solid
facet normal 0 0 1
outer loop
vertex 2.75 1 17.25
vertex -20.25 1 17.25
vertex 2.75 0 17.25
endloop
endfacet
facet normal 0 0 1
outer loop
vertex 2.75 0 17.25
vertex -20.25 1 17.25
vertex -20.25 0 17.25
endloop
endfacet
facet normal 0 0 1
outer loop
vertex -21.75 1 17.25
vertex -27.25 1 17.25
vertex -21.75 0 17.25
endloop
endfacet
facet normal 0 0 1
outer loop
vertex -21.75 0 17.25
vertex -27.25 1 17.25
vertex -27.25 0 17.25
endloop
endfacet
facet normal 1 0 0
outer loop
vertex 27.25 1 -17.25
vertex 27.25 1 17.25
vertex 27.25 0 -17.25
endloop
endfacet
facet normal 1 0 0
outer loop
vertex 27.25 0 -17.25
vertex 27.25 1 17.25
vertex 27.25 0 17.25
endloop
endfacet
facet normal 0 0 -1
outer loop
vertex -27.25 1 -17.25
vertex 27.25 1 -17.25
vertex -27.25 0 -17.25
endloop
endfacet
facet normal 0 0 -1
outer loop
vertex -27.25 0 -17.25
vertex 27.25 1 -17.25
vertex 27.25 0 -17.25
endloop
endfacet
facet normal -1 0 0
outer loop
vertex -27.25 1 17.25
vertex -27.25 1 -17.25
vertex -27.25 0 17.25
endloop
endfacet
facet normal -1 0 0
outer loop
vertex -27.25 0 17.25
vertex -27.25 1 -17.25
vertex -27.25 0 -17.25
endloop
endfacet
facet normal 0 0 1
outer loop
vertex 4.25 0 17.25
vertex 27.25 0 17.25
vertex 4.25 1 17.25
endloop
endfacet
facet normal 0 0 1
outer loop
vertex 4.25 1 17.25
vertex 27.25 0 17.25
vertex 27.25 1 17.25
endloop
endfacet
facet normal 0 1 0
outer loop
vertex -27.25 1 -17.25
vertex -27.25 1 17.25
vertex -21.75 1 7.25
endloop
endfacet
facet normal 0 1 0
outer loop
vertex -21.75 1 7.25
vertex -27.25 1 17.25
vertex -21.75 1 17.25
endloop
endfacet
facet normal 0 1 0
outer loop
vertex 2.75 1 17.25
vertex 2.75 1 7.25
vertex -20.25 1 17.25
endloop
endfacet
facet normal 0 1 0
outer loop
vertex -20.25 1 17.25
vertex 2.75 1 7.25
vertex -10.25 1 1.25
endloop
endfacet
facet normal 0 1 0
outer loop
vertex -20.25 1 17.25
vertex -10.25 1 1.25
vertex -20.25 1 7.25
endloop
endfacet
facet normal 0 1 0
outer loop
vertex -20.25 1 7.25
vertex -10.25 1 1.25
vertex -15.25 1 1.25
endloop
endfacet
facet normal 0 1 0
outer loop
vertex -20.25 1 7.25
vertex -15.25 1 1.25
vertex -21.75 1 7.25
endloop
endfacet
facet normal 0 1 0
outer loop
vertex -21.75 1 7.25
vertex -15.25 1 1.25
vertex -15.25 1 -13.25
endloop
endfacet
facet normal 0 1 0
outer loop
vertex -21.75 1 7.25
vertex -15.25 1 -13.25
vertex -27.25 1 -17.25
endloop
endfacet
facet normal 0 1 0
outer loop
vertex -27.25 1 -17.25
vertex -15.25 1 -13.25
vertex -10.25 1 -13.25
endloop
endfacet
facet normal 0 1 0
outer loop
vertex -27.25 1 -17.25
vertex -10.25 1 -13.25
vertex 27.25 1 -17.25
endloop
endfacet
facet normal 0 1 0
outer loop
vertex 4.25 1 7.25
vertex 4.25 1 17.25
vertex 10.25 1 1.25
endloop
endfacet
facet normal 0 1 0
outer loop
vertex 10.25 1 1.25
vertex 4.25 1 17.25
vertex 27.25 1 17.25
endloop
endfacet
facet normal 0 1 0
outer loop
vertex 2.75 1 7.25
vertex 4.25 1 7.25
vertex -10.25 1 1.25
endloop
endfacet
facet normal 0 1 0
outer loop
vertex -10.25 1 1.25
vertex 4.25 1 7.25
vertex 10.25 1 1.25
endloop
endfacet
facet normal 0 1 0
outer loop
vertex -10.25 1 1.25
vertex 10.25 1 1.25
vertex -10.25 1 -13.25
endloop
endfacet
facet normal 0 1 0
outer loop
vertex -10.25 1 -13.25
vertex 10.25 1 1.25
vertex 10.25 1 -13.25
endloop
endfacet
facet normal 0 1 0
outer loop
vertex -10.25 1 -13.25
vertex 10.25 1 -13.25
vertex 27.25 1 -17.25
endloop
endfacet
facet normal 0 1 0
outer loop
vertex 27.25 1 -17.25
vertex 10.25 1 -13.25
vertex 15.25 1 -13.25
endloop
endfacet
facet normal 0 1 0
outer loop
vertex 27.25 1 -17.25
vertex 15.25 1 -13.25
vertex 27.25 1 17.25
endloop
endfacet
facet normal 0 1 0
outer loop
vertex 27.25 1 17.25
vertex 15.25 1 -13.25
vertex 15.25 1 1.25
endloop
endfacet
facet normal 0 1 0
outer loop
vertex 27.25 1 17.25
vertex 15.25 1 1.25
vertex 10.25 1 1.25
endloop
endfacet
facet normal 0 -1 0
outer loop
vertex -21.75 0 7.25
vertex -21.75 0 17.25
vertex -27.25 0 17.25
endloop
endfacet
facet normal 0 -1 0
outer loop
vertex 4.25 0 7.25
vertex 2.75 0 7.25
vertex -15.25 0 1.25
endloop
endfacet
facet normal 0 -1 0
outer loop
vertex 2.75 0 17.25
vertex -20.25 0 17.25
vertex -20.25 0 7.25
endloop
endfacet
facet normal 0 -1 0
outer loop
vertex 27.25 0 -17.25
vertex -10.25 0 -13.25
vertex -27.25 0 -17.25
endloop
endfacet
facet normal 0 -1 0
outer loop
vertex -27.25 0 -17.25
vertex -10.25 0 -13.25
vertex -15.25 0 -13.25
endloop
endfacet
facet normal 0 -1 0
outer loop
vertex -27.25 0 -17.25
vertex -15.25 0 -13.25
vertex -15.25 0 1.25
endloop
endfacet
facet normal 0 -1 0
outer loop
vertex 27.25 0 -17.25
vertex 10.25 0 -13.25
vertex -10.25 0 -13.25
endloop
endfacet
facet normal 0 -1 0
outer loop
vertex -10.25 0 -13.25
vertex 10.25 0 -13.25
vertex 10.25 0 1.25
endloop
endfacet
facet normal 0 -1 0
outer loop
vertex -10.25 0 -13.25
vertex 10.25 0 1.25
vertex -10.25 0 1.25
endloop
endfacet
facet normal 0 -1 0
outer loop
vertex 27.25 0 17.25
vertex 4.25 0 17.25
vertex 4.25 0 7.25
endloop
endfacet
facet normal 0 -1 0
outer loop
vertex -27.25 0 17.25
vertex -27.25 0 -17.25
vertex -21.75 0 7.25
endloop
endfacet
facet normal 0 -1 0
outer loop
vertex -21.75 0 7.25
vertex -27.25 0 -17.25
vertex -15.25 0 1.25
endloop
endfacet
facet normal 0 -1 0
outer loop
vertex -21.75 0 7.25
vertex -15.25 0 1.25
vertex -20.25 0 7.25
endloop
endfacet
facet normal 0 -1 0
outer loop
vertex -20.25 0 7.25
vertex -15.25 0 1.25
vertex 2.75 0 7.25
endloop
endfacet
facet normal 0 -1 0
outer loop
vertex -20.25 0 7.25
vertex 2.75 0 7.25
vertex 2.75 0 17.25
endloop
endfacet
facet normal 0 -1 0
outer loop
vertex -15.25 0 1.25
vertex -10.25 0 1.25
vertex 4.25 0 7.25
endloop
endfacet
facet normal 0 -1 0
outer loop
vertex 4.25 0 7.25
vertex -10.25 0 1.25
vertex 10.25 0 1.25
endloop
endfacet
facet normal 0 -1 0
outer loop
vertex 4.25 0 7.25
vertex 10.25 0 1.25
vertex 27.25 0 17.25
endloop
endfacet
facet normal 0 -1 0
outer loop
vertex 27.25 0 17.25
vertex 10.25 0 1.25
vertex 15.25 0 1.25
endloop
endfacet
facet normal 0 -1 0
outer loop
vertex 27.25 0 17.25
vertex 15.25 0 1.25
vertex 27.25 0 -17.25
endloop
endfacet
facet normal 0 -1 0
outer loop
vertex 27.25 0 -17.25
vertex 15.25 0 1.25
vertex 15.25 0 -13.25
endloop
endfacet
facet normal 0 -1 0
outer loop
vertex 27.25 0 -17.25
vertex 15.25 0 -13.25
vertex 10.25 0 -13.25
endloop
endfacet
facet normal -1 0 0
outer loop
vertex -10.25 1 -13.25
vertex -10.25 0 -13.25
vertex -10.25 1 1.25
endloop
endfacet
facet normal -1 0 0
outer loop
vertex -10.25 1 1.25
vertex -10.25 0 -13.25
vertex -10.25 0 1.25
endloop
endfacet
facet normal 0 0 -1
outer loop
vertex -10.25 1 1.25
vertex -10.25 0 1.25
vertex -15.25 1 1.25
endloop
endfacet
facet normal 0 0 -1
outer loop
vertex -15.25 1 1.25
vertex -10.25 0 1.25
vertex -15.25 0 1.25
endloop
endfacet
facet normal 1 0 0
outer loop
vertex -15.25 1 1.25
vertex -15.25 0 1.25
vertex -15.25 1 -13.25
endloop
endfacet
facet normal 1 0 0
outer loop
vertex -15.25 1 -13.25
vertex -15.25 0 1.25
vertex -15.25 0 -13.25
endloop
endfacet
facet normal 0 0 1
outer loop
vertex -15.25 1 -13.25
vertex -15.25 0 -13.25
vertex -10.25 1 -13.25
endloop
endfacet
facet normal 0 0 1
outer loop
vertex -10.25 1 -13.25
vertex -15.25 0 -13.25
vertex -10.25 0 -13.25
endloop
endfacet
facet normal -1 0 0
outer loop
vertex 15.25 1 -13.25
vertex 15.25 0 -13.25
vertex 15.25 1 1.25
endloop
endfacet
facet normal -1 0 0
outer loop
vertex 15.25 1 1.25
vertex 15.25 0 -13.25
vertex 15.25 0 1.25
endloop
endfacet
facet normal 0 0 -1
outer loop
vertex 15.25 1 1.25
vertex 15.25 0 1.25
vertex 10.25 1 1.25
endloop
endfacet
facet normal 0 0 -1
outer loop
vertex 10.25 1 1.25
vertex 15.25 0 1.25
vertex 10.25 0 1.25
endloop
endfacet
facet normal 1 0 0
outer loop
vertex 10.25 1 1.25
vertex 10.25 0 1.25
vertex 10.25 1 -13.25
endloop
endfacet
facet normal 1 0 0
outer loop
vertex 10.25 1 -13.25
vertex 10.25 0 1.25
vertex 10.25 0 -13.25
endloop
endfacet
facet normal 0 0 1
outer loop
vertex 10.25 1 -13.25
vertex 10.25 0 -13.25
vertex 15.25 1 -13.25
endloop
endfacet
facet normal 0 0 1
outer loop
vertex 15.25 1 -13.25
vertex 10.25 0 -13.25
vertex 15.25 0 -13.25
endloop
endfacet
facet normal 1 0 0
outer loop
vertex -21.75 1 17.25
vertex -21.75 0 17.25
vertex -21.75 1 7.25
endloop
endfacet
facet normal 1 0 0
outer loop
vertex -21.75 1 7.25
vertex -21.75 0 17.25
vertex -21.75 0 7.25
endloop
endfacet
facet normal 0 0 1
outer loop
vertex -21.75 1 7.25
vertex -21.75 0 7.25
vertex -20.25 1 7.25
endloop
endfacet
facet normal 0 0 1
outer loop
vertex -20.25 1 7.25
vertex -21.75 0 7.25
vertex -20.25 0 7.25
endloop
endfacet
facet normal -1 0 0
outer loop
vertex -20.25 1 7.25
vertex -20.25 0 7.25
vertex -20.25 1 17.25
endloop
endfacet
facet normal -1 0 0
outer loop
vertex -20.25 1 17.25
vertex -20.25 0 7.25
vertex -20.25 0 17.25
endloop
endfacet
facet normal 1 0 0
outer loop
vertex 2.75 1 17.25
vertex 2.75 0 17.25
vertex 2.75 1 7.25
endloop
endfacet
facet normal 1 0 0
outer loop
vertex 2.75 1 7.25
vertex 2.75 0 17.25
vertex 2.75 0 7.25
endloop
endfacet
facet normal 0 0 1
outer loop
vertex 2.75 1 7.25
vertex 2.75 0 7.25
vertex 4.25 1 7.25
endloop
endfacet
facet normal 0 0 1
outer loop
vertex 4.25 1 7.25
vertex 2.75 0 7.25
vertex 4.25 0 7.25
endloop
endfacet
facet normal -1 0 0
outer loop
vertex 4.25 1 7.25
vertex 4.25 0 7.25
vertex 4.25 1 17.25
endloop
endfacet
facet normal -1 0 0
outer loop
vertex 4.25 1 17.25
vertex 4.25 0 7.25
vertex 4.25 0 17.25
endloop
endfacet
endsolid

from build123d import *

# Parameters (mm, degrees)
SKETCH1_W           = 54.5
SKETCH1_H           = 34.5
BOSS_EXTRUDE1_DEPTH = 1
SKETCH6_W           = 5
SKETCH6_H           = 14.5
CUT_EXTRUDE1_DEPTH  = 2
SKETCH9_W           = 5
SKETCH9_H           = 14.5
CUT_EXTRUDE2_DEPTH  = 2
SKETCH27_W          = 1.5
SKETCH27_H          = 10
CUT_EXTRUDE3_DEPTH  = 2
SKETCH37_W          = 1.5
SKETCH37_H          = 10
CUT_EXTRUDE10_DEPTH = 2


with BuildPart() as part:
    # Sketch1 → Boss-Extrude1 (new body)
    with BuildSketch(Plane(origin=(0, 0, 0), x_dir=(1, 0, 0), z_dir=(0, 1, 0))):
        Rectangle(SKETCH1_W, SKETCH1_H)
    extrude(amount=BOSS_EXTRUDE1_DEPTH)

    # Sketch6 → Cut-Extrude1 (cut)
    with BuildSketch(Plane(origin=(0, 1, 0), x_dir=(1, 0, 0), z_dir=(0, 1, 0))):
        with Locations((-12.75, 6)):
            Rectangle(SKETCH6_W, SKETCH6_H)
    extrude(amount=-CUT_EXTRUDE1_DEPTH, mode=Mode.SUBTRACT)

    # Sketch9 → Cut-Extrude2 (cut)
    with BuildSketch(Plane(origin=(0, 1, 0), x_dir=(1, 0, 0), z_dir=(0, 1, 0))):
        with Locations((12.75, 6)):
            Rectangle(SKETCH9_W, SKETCH9_H)
    extrude(amount=-CUT_EXTRUDE2_DEPTH, mode=Mode.SUBTRACT)

    # Sketch27 → Cut-Extrude3 (cut)
    with BuildSketch(Plane(origin=(0, 1, 0), x_dir=(1, 0, 0), z_dir=(0, 1, 0))):
        with Locations((-21, -12.25)):
            Rectangle(SKETCH27_W, SKETCH27_H)
    extrude(amount=-CUT_EXTRUDE3_DEPTH, mode=Mode.SUBTRACT)

    # Sketch37 → Cut-Extrude10 (cut)
    with BuildSketch(Plane(origin=(0, 1, 0), x_dir=(1, 0, 0), z_dir=(0, 1, 0))):
        with Locations((3.5, -12.25)):
            Rectangle(SKETCH37_W, SKETCH37_H)
    extrude(amount=-CUT_EXTRUDE10_DEPTH, mode=Mode.SUBTRACT)


solid = part.part
